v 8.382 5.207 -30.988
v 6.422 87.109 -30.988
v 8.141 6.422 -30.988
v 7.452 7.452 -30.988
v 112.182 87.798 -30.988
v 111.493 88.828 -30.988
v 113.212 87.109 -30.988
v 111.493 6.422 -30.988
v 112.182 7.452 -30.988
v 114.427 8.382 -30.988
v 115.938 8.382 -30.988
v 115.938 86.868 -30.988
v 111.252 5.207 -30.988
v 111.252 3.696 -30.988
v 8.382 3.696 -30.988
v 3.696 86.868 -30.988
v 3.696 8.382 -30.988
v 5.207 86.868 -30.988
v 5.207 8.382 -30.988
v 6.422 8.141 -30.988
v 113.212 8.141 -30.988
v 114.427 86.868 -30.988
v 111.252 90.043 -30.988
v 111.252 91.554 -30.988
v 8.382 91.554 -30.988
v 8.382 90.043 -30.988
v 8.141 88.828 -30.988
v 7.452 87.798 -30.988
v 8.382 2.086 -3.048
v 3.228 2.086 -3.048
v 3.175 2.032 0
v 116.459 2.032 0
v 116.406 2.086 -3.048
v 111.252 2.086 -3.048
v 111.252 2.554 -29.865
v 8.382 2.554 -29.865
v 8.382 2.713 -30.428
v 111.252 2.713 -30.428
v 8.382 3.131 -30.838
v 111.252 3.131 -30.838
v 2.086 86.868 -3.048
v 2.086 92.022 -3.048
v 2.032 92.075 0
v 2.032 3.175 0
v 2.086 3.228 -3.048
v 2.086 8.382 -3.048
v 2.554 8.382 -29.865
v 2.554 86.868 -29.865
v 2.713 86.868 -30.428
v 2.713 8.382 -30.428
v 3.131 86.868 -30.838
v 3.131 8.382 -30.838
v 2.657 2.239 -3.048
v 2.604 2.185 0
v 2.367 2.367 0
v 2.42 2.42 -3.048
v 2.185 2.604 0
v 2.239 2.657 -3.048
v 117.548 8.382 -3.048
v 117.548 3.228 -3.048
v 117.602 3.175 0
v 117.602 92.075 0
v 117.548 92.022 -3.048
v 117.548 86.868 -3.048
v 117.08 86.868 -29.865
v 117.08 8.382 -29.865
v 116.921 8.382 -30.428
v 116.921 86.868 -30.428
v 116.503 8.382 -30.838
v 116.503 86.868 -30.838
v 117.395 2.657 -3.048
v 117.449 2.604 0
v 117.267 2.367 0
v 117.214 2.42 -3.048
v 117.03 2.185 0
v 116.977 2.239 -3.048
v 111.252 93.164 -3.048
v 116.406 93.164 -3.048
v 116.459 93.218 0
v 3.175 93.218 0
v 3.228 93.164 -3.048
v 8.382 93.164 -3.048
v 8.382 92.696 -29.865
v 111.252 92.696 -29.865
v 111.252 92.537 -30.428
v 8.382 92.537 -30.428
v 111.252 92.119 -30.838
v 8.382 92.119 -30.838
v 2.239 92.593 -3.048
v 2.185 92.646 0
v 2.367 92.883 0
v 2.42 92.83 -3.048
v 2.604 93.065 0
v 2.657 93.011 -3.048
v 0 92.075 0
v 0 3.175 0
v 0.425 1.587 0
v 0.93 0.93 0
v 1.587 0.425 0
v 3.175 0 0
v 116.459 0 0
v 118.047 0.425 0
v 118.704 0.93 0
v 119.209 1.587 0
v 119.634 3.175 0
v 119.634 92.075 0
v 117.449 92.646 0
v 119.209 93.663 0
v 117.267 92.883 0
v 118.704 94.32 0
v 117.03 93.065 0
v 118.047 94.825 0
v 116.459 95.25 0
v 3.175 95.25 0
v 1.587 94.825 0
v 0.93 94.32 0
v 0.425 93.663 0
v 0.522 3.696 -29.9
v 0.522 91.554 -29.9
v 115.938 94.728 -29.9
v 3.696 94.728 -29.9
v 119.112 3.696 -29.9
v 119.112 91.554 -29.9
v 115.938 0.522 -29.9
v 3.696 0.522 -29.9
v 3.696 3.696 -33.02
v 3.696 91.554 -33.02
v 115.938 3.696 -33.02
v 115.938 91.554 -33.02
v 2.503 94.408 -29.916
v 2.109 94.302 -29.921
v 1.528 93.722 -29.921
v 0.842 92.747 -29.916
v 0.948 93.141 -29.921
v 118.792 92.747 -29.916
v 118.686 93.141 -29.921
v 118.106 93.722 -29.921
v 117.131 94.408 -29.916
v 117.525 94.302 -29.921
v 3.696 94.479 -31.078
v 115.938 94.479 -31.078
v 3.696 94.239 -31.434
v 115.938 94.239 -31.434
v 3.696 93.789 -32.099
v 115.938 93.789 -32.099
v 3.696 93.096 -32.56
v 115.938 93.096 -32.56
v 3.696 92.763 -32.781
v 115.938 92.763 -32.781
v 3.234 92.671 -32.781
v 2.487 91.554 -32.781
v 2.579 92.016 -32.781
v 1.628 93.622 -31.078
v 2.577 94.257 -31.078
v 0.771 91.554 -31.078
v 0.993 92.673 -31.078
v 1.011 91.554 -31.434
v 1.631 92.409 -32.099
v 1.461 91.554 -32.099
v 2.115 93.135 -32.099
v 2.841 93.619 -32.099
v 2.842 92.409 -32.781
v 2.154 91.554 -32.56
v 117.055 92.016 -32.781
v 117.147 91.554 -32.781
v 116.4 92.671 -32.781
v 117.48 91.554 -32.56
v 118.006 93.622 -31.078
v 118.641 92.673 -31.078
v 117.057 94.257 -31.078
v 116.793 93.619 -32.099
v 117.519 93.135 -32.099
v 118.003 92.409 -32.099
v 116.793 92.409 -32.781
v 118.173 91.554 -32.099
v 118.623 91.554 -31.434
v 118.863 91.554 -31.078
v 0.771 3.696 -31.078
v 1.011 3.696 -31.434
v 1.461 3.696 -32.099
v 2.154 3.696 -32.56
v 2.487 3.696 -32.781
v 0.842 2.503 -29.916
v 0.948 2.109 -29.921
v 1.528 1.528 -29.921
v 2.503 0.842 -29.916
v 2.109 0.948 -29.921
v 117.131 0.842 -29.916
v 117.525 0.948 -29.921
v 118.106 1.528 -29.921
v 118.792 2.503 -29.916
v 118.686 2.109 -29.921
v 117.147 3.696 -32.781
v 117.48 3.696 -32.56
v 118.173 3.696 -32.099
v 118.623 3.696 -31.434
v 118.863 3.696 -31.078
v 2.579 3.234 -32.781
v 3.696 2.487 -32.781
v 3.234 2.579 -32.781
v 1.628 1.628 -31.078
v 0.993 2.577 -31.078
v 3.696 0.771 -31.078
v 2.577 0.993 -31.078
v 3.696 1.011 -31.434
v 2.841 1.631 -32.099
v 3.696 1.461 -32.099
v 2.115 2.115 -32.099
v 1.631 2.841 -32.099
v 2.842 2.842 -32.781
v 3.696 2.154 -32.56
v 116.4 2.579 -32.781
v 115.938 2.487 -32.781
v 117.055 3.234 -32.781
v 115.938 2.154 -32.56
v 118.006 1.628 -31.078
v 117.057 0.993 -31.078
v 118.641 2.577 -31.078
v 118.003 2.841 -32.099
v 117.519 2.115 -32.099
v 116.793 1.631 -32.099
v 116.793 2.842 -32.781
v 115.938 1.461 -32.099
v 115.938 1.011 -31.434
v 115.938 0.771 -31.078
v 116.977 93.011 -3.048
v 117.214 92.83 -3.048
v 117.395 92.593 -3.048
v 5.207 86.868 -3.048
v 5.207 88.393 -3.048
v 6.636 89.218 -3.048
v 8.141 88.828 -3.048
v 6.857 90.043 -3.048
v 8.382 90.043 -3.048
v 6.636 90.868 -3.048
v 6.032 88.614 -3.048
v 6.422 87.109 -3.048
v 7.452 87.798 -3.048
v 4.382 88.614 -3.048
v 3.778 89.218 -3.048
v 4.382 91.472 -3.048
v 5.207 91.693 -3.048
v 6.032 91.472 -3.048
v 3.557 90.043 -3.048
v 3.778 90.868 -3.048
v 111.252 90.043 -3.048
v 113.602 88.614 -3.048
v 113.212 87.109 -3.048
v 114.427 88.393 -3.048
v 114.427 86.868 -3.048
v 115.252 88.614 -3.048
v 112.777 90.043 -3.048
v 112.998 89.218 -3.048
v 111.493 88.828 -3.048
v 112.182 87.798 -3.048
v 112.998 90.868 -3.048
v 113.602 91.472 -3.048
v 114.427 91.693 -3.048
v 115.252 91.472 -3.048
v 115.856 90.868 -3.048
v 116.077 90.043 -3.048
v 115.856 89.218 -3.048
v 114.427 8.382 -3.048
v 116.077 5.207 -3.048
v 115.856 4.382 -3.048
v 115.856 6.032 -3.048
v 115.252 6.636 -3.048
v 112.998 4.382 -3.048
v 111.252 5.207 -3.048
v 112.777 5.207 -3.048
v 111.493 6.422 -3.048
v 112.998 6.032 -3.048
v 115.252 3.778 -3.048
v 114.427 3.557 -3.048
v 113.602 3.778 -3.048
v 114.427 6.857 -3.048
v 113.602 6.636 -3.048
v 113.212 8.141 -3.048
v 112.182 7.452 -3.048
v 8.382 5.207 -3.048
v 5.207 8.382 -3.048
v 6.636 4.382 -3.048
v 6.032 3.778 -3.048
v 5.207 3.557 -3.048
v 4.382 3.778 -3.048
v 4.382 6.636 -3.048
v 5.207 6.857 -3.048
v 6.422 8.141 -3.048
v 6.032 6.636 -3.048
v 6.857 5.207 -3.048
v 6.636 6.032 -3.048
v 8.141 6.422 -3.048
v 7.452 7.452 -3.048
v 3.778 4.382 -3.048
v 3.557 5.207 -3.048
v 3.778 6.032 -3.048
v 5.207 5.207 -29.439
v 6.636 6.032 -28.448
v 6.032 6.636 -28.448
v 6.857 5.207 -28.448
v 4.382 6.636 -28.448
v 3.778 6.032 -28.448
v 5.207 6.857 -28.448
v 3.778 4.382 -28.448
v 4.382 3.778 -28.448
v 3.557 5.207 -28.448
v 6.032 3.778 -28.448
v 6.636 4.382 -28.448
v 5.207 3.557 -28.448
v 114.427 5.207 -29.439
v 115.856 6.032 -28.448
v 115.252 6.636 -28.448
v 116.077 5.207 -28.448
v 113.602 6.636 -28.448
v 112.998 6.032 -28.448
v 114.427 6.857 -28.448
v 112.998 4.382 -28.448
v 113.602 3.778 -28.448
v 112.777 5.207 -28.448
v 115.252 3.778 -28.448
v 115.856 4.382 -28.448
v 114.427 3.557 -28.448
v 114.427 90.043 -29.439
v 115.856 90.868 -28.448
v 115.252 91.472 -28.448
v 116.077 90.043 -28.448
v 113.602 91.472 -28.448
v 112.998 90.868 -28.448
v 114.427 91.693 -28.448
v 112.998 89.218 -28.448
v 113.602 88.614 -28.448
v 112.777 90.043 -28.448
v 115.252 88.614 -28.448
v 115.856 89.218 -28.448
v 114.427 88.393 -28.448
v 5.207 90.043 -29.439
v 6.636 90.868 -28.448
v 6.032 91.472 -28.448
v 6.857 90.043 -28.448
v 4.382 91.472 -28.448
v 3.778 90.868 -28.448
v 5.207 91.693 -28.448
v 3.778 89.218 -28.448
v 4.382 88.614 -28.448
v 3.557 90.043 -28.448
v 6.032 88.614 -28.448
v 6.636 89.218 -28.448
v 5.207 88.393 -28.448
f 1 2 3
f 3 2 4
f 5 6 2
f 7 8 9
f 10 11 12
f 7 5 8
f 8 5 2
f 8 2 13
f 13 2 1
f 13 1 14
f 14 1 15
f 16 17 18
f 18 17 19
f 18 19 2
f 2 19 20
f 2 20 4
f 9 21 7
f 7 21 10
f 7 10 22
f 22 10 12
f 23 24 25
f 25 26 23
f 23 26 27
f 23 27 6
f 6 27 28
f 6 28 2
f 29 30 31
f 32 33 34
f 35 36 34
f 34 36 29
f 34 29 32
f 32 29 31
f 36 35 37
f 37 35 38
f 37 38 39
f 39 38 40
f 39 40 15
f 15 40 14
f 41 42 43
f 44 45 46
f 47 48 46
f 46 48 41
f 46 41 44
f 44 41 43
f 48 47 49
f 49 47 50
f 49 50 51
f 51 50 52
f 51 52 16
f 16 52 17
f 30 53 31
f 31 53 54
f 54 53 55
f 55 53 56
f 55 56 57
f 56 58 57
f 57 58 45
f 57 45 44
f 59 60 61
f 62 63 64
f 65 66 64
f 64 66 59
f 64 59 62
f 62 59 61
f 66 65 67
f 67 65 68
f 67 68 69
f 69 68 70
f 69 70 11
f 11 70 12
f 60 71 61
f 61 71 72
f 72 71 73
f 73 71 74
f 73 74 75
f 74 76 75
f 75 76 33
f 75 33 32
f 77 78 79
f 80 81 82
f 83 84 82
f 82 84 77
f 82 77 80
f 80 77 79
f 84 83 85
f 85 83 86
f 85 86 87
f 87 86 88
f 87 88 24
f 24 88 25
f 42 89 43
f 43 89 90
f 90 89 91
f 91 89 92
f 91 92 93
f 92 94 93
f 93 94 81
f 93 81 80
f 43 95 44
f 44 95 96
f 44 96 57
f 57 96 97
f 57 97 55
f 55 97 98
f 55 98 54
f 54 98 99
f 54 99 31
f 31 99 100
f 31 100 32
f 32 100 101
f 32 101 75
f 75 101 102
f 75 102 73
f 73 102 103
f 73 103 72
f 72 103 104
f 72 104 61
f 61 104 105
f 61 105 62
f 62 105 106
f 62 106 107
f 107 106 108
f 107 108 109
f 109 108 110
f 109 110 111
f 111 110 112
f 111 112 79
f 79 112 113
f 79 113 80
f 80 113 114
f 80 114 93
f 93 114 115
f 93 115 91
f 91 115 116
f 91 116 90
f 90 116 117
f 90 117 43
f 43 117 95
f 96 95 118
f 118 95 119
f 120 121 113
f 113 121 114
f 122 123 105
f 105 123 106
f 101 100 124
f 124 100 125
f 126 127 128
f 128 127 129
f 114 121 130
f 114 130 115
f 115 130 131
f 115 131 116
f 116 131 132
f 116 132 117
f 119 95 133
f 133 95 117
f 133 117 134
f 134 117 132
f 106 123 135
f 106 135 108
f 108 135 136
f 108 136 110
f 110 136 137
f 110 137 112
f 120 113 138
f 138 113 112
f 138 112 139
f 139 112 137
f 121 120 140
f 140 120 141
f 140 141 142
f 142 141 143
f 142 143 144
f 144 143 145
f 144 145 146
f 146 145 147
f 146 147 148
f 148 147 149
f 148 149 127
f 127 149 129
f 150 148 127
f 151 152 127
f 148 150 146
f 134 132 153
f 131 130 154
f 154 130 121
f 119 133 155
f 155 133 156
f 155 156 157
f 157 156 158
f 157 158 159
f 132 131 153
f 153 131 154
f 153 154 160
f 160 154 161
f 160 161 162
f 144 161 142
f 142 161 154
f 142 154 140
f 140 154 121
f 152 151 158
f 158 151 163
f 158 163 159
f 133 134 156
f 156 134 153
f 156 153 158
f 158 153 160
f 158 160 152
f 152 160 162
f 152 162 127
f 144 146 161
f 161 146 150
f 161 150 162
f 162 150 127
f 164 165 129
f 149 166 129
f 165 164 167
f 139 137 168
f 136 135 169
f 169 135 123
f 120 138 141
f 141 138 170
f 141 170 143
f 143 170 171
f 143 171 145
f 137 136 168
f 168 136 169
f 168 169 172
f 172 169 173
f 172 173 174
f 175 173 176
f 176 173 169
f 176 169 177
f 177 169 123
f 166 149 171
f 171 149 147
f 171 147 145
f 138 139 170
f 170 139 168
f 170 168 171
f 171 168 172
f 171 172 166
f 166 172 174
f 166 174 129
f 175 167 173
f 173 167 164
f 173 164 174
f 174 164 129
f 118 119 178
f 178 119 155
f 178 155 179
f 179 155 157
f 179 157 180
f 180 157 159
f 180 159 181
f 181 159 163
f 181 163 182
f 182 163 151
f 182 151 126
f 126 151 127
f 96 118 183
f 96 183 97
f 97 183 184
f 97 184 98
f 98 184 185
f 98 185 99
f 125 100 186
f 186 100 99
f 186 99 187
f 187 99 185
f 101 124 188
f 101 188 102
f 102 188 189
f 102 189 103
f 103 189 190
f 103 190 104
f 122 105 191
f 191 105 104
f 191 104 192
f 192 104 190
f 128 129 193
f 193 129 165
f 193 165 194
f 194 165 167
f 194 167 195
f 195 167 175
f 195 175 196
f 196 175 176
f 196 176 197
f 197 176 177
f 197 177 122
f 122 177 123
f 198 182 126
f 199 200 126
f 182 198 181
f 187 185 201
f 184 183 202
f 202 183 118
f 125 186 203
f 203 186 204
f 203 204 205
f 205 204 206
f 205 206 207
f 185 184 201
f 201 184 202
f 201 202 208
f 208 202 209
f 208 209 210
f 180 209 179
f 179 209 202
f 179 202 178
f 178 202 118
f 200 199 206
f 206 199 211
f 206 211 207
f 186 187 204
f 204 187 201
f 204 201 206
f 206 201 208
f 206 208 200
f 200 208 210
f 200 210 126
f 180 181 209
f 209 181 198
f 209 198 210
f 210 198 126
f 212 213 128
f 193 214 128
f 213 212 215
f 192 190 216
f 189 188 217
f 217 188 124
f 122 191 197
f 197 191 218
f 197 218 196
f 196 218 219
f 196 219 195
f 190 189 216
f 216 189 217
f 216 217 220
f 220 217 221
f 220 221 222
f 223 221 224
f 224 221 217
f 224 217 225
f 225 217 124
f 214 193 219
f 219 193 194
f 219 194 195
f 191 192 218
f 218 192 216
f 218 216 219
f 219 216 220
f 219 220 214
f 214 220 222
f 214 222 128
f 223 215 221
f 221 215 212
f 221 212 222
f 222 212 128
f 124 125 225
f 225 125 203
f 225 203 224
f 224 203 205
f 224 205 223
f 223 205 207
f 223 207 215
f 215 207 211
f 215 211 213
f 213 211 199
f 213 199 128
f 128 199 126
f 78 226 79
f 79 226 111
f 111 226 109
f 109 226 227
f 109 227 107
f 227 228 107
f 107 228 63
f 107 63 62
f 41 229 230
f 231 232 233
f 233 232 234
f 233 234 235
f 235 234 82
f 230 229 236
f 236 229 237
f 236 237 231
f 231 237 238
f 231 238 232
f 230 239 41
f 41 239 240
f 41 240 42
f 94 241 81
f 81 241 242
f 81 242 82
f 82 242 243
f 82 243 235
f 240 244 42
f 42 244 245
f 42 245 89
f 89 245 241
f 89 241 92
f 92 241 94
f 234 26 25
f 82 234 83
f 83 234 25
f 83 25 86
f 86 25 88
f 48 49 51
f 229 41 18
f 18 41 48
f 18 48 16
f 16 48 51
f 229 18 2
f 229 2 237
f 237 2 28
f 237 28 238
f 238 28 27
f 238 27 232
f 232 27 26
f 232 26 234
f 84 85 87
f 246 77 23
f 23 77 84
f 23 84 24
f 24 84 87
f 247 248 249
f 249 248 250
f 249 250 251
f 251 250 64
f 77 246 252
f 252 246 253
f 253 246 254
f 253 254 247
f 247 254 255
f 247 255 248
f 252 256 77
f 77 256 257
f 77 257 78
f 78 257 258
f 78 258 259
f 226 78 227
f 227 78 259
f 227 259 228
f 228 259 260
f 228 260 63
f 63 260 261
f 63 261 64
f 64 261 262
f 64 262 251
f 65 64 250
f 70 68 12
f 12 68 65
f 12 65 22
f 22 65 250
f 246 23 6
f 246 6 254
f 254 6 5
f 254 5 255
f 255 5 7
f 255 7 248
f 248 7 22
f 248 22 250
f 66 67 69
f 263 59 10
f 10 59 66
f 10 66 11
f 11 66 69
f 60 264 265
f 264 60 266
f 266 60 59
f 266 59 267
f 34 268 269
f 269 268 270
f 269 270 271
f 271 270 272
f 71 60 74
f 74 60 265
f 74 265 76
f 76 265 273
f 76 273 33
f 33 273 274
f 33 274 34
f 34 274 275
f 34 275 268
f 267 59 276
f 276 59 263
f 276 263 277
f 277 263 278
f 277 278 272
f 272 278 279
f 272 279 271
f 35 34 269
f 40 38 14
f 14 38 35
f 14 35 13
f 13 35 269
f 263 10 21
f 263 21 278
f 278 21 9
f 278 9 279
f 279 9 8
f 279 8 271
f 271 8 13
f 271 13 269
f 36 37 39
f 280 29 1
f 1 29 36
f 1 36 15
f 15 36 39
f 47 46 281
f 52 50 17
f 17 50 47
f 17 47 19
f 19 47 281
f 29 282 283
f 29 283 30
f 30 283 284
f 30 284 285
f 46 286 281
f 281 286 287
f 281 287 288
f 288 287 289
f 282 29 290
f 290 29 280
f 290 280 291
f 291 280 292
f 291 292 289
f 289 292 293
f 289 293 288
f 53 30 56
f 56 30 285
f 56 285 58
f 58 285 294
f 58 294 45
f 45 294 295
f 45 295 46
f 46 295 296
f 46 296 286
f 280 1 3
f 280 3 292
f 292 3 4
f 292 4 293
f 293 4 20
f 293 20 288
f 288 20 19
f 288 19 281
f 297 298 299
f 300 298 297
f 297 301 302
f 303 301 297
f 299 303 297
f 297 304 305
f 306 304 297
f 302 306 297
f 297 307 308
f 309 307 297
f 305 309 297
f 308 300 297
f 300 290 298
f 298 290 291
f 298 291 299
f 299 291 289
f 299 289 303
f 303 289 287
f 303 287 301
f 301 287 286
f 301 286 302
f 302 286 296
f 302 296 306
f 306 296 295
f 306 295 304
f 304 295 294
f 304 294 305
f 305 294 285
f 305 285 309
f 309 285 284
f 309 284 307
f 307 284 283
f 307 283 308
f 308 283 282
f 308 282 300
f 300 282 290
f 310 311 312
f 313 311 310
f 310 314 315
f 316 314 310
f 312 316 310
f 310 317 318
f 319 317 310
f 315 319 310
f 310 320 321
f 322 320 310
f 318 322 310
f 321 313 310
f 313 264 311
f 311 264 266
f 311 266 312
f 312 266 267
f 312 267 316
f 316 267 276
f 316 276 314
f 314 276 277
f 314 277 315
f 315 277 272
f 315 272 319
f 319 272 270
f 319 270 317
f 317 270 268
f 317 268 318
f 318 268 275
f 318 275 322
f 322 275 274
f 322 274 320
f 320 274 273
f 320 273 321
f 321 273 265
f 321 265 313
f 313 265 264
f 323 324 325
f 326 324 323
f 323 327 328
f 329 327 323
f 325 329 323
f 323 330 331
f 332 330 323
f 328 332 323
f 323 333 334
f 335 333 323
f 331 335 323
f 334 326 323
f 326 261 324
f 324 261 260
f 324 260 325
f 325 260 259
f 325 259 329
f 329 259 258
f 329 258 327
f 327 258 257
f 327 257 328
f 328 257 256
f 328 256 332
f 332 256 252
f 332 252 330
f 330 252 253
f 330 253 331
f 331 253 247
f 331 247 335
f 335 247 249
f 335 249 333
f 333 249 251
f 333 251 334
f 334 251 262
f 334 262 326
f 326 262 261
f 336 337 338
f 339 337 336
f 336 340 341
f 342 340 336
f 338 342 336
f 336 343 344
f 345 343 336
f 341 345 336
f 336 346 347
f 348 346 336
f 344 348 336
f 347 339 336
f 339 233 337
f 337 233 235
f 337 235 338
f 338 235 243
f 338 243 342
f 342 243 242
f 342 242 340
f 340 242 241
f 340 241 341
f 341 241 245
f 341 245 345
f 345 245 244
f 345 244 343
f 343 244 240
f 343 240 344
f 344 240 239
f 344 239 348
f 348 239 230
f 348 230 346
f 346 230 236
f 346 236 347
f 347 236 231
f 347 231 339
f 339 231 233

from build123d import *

# Parameters (mm, degrees)
SKETCH1_W                       = 119.634
SKETCH1_H                       = 95.25
BOSS_EXTRUDE1_DEPTH             = 33.02
BOSS_EXTRUDE1_DRAFT             = -1
FILLET1_R                       = 3.175
SHELL1_T                        = -2.032
BOSS_EXTRUDE2_DEPTH             = 27.94
TAP_DRILL_FOR_M4X0_7_TAP1_D     = 3.3
TAP_DRILL_FOR_M4X0_7_TAP1_DEPTH = 25.4
TAP_DRILL_FOR_M4X0_7_TAP1_TIP   = 0.991420021


with BuildPart() as part:
    # Sketch1 → Boss-Extrude1 (with draft: the straight prism first)
    with BuildSketch(Plane.XY):
        with Locations((59.817, 47.625)):
            Rectangle(SKETCH1_W, SKETCH1_H)
    extrude(amount=-BOSS_EXTRUDE1_DEPTH)
    # Boss-Extrude1: the draft: its side faces are tilted about the plane it starts from
    boss_extrude1_sides = [part.faces().sort_by_distance(p)[0] for p in [
        (59.817, 0, -16.51),
        (119.634, 47.625, -16.51),
        (59.817, 95.25, -16.51),
        (0, 47.625, -16.51),
    ]]
    draft(boss_extrude1_sides, Plane.XY, BOSS_EXTRUDE1_DRAFT)

    # Fillet1
    fillet1_edges = [part.edges().sort_by_distance(p)[0] for p in [
        (119.057633756, 47.625, -33.02),
        (59.817, 94.673633756, -33.02),
        (0.576366244, 47.625, -33.02),
        (59.817, 0.576366244, -33.02),
        (0.288183122, 94.961816878, -16.51),
        (119.345816878, 94.961816878, -16.51),
        (119.345816878, 0.288183122, -16.51),
        (0.288183122, 0.288183122, -16.51),
    ]]
    fillet(fillet1_edges, radius=FILLET1_R)

    # Shell1
    shell1_openings = [part.faces().sort_by_distance(p)[0] for p in [
        (59.817, 47.625, 0),
    ]]
    offset(amount=SHELL1_T, openings=shell1_openings, kind=Kind.INTERSECTION)

    # Sketch2 → Boss-Extrude2 (add)
    with BuildSketch(Plane.XY.offset(-30.988)):
        with BuildLine():
            Line((2.032309531, 86.867690469), (5.207309531, 86.867690469))
            ThreePointArc((5.207309531, 86.867690469), (7.452373561, 87.797626439), (8.382309531, 90.042690469))
            Line((8.382309531, 90.042690469), (8.382309531, 93.217690469))
            Line((8.382309531, 93.217690469), (3.175135446, 93.217690469))
            ThreePointArc((3.175135446, 93.217690469), (2.367035492, 92.882964508), (2.032309531, 92.074864554))
            Line((2.032309531, 92.074864554), (2.032309531, 86.867690469))
        make_face()
        with BuildLine():
            Line((111.251690469, 93.217690469), (111.251690469, 90.042690469))
            ThreePointArc((111.251690469, 90.042690469), (112.181626439, 87.797626439), (114.426690469, 86.867690469))
            Line((114.426690469, 86.867690469), (117.601690469, 86.867690469))
            Line((117.601690469, 86.867690469), (117.601690469, 92.074864554))
            ThreePointArc((117.601690469, 92.074864554), (117.266964508, 92.882964508), (116.458864554, 93.217690469))
            Line((116.458864554, 93.217690469), (111.251690469, 93.217690469))
        make_face()
        with BuildLine():
            Line((116.458864554, 2.032309531), (111.251690469, 2.032309531))
            Line((111.251690469, 2.032309531), (111.251690469, 5.207309531))
            ThreePointArc((111.251690469, 5.207309531), (112.181626439, 7.452373561), (114.426690469, 8.382309531))
            Line((114.426690469, 8.382309531), (117.601690469, 8.382309531))
            Line((117.601690469, 8.382309531), (117.601690469, 3.175135446))
            ThreePointArc((117.601690469, 3.175135446), (117.266964508, 2.367035492), (116.458864554, 2.032309531))
        make_face()
        with BuildLine():
            Line((2.032309531, 3.175135446), (2.032309531, 8.382309531))
            Line((2.032309531, 8.382309531), (5.207309531, 8.382309531))
            ThreePointArc((5.207309531, 8.382309531), (7.452373561, 7.452373561), (8.382309531, 5.207309531))
            Line((8.382309531, 5.207309531), (8.382309531, 2.032309531))
            Line((8.382309531, 2.032309531), (3.175135446, 2.032309531))
            ThreePointArc((3.175135446, 2.032309531), (2.367035492, 2.367035492), (2.032309531, 3.175135446))
        make_face()
    extrude(amount=BOSS_EXTRUDE2_DEPTH)

    # Tap Drill for M4x0.7 Tap1
    with Locations(Plane.XY.offset(-3.048)):
        with Locations((5.207309531, 90.042690469), (114.426690469, 90.042690469), (114.426690469, 5.207309531), (5.207309531, 5.207309531)):
            Hole(TAP_DRILL_FOR_M4X0_7_TAP1_D / 2, depth=TAP_DRILL_FOR_M4X0_7_TAP1_DEPTH)
            with Locations((0, 0, -(TAP_DRILL_FOR_M4X0_7_TAP1_DEPTH + TAP_DRILL_FOR_M4X0_7_TAP1_TIP / 2))):  # 118° drill point
                Cone(0, TAP_DRILL_FOR_M4X0_7_TAP1_D / 2, TAP_DRILL_FOR_M4X0_7_TAP1_TIP, mode=Mode.SUBTRACT)


solid = part.part
